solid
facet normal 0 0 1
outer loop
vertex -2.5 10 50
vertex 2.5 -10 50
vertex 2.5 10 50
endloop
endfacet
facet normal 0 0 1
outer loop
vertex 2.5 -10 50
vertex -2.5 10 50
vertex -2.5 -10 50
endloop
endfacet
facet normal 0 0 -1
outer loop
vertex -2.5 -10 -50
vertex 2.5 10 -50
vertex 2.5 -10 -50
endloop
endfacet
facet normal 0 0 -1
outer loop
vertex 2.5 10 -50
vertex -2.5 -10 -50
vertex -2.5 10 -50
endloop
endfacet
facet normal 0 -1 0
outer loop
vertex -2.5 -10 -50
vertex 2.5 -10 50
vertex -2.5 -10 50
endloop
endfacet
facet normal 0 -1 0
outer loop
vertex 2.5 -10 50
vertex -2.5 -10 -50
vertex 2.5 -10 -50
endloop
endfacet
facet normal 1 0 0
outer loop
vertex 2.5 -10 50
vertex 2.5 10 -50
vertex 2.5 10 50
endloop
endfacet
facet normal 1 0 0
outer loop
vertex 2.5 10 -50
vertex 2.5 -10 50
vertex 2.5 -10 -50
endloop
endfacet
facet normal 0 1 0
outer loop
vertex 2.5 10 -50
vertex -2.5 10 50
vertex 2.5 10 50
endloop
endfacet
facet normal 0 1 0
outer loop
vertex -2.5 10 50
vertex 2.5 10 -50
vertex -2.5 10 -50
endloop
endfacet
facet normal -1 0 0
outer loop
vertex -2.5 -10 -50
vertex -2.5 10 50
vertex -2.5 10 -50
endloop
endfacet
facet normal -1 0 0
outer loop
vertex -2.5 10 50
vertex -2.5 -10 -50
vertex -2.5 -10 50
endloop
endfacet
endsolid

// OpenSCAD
// -*- coding: utf-8 -*-
//
// German craftsperson style bottle opener
//
// © 2017 Roland Sieker <ospalh@gmail.com>
// Licence: CC-BY-SA 4.0

cube([5, 20, 100], true);
